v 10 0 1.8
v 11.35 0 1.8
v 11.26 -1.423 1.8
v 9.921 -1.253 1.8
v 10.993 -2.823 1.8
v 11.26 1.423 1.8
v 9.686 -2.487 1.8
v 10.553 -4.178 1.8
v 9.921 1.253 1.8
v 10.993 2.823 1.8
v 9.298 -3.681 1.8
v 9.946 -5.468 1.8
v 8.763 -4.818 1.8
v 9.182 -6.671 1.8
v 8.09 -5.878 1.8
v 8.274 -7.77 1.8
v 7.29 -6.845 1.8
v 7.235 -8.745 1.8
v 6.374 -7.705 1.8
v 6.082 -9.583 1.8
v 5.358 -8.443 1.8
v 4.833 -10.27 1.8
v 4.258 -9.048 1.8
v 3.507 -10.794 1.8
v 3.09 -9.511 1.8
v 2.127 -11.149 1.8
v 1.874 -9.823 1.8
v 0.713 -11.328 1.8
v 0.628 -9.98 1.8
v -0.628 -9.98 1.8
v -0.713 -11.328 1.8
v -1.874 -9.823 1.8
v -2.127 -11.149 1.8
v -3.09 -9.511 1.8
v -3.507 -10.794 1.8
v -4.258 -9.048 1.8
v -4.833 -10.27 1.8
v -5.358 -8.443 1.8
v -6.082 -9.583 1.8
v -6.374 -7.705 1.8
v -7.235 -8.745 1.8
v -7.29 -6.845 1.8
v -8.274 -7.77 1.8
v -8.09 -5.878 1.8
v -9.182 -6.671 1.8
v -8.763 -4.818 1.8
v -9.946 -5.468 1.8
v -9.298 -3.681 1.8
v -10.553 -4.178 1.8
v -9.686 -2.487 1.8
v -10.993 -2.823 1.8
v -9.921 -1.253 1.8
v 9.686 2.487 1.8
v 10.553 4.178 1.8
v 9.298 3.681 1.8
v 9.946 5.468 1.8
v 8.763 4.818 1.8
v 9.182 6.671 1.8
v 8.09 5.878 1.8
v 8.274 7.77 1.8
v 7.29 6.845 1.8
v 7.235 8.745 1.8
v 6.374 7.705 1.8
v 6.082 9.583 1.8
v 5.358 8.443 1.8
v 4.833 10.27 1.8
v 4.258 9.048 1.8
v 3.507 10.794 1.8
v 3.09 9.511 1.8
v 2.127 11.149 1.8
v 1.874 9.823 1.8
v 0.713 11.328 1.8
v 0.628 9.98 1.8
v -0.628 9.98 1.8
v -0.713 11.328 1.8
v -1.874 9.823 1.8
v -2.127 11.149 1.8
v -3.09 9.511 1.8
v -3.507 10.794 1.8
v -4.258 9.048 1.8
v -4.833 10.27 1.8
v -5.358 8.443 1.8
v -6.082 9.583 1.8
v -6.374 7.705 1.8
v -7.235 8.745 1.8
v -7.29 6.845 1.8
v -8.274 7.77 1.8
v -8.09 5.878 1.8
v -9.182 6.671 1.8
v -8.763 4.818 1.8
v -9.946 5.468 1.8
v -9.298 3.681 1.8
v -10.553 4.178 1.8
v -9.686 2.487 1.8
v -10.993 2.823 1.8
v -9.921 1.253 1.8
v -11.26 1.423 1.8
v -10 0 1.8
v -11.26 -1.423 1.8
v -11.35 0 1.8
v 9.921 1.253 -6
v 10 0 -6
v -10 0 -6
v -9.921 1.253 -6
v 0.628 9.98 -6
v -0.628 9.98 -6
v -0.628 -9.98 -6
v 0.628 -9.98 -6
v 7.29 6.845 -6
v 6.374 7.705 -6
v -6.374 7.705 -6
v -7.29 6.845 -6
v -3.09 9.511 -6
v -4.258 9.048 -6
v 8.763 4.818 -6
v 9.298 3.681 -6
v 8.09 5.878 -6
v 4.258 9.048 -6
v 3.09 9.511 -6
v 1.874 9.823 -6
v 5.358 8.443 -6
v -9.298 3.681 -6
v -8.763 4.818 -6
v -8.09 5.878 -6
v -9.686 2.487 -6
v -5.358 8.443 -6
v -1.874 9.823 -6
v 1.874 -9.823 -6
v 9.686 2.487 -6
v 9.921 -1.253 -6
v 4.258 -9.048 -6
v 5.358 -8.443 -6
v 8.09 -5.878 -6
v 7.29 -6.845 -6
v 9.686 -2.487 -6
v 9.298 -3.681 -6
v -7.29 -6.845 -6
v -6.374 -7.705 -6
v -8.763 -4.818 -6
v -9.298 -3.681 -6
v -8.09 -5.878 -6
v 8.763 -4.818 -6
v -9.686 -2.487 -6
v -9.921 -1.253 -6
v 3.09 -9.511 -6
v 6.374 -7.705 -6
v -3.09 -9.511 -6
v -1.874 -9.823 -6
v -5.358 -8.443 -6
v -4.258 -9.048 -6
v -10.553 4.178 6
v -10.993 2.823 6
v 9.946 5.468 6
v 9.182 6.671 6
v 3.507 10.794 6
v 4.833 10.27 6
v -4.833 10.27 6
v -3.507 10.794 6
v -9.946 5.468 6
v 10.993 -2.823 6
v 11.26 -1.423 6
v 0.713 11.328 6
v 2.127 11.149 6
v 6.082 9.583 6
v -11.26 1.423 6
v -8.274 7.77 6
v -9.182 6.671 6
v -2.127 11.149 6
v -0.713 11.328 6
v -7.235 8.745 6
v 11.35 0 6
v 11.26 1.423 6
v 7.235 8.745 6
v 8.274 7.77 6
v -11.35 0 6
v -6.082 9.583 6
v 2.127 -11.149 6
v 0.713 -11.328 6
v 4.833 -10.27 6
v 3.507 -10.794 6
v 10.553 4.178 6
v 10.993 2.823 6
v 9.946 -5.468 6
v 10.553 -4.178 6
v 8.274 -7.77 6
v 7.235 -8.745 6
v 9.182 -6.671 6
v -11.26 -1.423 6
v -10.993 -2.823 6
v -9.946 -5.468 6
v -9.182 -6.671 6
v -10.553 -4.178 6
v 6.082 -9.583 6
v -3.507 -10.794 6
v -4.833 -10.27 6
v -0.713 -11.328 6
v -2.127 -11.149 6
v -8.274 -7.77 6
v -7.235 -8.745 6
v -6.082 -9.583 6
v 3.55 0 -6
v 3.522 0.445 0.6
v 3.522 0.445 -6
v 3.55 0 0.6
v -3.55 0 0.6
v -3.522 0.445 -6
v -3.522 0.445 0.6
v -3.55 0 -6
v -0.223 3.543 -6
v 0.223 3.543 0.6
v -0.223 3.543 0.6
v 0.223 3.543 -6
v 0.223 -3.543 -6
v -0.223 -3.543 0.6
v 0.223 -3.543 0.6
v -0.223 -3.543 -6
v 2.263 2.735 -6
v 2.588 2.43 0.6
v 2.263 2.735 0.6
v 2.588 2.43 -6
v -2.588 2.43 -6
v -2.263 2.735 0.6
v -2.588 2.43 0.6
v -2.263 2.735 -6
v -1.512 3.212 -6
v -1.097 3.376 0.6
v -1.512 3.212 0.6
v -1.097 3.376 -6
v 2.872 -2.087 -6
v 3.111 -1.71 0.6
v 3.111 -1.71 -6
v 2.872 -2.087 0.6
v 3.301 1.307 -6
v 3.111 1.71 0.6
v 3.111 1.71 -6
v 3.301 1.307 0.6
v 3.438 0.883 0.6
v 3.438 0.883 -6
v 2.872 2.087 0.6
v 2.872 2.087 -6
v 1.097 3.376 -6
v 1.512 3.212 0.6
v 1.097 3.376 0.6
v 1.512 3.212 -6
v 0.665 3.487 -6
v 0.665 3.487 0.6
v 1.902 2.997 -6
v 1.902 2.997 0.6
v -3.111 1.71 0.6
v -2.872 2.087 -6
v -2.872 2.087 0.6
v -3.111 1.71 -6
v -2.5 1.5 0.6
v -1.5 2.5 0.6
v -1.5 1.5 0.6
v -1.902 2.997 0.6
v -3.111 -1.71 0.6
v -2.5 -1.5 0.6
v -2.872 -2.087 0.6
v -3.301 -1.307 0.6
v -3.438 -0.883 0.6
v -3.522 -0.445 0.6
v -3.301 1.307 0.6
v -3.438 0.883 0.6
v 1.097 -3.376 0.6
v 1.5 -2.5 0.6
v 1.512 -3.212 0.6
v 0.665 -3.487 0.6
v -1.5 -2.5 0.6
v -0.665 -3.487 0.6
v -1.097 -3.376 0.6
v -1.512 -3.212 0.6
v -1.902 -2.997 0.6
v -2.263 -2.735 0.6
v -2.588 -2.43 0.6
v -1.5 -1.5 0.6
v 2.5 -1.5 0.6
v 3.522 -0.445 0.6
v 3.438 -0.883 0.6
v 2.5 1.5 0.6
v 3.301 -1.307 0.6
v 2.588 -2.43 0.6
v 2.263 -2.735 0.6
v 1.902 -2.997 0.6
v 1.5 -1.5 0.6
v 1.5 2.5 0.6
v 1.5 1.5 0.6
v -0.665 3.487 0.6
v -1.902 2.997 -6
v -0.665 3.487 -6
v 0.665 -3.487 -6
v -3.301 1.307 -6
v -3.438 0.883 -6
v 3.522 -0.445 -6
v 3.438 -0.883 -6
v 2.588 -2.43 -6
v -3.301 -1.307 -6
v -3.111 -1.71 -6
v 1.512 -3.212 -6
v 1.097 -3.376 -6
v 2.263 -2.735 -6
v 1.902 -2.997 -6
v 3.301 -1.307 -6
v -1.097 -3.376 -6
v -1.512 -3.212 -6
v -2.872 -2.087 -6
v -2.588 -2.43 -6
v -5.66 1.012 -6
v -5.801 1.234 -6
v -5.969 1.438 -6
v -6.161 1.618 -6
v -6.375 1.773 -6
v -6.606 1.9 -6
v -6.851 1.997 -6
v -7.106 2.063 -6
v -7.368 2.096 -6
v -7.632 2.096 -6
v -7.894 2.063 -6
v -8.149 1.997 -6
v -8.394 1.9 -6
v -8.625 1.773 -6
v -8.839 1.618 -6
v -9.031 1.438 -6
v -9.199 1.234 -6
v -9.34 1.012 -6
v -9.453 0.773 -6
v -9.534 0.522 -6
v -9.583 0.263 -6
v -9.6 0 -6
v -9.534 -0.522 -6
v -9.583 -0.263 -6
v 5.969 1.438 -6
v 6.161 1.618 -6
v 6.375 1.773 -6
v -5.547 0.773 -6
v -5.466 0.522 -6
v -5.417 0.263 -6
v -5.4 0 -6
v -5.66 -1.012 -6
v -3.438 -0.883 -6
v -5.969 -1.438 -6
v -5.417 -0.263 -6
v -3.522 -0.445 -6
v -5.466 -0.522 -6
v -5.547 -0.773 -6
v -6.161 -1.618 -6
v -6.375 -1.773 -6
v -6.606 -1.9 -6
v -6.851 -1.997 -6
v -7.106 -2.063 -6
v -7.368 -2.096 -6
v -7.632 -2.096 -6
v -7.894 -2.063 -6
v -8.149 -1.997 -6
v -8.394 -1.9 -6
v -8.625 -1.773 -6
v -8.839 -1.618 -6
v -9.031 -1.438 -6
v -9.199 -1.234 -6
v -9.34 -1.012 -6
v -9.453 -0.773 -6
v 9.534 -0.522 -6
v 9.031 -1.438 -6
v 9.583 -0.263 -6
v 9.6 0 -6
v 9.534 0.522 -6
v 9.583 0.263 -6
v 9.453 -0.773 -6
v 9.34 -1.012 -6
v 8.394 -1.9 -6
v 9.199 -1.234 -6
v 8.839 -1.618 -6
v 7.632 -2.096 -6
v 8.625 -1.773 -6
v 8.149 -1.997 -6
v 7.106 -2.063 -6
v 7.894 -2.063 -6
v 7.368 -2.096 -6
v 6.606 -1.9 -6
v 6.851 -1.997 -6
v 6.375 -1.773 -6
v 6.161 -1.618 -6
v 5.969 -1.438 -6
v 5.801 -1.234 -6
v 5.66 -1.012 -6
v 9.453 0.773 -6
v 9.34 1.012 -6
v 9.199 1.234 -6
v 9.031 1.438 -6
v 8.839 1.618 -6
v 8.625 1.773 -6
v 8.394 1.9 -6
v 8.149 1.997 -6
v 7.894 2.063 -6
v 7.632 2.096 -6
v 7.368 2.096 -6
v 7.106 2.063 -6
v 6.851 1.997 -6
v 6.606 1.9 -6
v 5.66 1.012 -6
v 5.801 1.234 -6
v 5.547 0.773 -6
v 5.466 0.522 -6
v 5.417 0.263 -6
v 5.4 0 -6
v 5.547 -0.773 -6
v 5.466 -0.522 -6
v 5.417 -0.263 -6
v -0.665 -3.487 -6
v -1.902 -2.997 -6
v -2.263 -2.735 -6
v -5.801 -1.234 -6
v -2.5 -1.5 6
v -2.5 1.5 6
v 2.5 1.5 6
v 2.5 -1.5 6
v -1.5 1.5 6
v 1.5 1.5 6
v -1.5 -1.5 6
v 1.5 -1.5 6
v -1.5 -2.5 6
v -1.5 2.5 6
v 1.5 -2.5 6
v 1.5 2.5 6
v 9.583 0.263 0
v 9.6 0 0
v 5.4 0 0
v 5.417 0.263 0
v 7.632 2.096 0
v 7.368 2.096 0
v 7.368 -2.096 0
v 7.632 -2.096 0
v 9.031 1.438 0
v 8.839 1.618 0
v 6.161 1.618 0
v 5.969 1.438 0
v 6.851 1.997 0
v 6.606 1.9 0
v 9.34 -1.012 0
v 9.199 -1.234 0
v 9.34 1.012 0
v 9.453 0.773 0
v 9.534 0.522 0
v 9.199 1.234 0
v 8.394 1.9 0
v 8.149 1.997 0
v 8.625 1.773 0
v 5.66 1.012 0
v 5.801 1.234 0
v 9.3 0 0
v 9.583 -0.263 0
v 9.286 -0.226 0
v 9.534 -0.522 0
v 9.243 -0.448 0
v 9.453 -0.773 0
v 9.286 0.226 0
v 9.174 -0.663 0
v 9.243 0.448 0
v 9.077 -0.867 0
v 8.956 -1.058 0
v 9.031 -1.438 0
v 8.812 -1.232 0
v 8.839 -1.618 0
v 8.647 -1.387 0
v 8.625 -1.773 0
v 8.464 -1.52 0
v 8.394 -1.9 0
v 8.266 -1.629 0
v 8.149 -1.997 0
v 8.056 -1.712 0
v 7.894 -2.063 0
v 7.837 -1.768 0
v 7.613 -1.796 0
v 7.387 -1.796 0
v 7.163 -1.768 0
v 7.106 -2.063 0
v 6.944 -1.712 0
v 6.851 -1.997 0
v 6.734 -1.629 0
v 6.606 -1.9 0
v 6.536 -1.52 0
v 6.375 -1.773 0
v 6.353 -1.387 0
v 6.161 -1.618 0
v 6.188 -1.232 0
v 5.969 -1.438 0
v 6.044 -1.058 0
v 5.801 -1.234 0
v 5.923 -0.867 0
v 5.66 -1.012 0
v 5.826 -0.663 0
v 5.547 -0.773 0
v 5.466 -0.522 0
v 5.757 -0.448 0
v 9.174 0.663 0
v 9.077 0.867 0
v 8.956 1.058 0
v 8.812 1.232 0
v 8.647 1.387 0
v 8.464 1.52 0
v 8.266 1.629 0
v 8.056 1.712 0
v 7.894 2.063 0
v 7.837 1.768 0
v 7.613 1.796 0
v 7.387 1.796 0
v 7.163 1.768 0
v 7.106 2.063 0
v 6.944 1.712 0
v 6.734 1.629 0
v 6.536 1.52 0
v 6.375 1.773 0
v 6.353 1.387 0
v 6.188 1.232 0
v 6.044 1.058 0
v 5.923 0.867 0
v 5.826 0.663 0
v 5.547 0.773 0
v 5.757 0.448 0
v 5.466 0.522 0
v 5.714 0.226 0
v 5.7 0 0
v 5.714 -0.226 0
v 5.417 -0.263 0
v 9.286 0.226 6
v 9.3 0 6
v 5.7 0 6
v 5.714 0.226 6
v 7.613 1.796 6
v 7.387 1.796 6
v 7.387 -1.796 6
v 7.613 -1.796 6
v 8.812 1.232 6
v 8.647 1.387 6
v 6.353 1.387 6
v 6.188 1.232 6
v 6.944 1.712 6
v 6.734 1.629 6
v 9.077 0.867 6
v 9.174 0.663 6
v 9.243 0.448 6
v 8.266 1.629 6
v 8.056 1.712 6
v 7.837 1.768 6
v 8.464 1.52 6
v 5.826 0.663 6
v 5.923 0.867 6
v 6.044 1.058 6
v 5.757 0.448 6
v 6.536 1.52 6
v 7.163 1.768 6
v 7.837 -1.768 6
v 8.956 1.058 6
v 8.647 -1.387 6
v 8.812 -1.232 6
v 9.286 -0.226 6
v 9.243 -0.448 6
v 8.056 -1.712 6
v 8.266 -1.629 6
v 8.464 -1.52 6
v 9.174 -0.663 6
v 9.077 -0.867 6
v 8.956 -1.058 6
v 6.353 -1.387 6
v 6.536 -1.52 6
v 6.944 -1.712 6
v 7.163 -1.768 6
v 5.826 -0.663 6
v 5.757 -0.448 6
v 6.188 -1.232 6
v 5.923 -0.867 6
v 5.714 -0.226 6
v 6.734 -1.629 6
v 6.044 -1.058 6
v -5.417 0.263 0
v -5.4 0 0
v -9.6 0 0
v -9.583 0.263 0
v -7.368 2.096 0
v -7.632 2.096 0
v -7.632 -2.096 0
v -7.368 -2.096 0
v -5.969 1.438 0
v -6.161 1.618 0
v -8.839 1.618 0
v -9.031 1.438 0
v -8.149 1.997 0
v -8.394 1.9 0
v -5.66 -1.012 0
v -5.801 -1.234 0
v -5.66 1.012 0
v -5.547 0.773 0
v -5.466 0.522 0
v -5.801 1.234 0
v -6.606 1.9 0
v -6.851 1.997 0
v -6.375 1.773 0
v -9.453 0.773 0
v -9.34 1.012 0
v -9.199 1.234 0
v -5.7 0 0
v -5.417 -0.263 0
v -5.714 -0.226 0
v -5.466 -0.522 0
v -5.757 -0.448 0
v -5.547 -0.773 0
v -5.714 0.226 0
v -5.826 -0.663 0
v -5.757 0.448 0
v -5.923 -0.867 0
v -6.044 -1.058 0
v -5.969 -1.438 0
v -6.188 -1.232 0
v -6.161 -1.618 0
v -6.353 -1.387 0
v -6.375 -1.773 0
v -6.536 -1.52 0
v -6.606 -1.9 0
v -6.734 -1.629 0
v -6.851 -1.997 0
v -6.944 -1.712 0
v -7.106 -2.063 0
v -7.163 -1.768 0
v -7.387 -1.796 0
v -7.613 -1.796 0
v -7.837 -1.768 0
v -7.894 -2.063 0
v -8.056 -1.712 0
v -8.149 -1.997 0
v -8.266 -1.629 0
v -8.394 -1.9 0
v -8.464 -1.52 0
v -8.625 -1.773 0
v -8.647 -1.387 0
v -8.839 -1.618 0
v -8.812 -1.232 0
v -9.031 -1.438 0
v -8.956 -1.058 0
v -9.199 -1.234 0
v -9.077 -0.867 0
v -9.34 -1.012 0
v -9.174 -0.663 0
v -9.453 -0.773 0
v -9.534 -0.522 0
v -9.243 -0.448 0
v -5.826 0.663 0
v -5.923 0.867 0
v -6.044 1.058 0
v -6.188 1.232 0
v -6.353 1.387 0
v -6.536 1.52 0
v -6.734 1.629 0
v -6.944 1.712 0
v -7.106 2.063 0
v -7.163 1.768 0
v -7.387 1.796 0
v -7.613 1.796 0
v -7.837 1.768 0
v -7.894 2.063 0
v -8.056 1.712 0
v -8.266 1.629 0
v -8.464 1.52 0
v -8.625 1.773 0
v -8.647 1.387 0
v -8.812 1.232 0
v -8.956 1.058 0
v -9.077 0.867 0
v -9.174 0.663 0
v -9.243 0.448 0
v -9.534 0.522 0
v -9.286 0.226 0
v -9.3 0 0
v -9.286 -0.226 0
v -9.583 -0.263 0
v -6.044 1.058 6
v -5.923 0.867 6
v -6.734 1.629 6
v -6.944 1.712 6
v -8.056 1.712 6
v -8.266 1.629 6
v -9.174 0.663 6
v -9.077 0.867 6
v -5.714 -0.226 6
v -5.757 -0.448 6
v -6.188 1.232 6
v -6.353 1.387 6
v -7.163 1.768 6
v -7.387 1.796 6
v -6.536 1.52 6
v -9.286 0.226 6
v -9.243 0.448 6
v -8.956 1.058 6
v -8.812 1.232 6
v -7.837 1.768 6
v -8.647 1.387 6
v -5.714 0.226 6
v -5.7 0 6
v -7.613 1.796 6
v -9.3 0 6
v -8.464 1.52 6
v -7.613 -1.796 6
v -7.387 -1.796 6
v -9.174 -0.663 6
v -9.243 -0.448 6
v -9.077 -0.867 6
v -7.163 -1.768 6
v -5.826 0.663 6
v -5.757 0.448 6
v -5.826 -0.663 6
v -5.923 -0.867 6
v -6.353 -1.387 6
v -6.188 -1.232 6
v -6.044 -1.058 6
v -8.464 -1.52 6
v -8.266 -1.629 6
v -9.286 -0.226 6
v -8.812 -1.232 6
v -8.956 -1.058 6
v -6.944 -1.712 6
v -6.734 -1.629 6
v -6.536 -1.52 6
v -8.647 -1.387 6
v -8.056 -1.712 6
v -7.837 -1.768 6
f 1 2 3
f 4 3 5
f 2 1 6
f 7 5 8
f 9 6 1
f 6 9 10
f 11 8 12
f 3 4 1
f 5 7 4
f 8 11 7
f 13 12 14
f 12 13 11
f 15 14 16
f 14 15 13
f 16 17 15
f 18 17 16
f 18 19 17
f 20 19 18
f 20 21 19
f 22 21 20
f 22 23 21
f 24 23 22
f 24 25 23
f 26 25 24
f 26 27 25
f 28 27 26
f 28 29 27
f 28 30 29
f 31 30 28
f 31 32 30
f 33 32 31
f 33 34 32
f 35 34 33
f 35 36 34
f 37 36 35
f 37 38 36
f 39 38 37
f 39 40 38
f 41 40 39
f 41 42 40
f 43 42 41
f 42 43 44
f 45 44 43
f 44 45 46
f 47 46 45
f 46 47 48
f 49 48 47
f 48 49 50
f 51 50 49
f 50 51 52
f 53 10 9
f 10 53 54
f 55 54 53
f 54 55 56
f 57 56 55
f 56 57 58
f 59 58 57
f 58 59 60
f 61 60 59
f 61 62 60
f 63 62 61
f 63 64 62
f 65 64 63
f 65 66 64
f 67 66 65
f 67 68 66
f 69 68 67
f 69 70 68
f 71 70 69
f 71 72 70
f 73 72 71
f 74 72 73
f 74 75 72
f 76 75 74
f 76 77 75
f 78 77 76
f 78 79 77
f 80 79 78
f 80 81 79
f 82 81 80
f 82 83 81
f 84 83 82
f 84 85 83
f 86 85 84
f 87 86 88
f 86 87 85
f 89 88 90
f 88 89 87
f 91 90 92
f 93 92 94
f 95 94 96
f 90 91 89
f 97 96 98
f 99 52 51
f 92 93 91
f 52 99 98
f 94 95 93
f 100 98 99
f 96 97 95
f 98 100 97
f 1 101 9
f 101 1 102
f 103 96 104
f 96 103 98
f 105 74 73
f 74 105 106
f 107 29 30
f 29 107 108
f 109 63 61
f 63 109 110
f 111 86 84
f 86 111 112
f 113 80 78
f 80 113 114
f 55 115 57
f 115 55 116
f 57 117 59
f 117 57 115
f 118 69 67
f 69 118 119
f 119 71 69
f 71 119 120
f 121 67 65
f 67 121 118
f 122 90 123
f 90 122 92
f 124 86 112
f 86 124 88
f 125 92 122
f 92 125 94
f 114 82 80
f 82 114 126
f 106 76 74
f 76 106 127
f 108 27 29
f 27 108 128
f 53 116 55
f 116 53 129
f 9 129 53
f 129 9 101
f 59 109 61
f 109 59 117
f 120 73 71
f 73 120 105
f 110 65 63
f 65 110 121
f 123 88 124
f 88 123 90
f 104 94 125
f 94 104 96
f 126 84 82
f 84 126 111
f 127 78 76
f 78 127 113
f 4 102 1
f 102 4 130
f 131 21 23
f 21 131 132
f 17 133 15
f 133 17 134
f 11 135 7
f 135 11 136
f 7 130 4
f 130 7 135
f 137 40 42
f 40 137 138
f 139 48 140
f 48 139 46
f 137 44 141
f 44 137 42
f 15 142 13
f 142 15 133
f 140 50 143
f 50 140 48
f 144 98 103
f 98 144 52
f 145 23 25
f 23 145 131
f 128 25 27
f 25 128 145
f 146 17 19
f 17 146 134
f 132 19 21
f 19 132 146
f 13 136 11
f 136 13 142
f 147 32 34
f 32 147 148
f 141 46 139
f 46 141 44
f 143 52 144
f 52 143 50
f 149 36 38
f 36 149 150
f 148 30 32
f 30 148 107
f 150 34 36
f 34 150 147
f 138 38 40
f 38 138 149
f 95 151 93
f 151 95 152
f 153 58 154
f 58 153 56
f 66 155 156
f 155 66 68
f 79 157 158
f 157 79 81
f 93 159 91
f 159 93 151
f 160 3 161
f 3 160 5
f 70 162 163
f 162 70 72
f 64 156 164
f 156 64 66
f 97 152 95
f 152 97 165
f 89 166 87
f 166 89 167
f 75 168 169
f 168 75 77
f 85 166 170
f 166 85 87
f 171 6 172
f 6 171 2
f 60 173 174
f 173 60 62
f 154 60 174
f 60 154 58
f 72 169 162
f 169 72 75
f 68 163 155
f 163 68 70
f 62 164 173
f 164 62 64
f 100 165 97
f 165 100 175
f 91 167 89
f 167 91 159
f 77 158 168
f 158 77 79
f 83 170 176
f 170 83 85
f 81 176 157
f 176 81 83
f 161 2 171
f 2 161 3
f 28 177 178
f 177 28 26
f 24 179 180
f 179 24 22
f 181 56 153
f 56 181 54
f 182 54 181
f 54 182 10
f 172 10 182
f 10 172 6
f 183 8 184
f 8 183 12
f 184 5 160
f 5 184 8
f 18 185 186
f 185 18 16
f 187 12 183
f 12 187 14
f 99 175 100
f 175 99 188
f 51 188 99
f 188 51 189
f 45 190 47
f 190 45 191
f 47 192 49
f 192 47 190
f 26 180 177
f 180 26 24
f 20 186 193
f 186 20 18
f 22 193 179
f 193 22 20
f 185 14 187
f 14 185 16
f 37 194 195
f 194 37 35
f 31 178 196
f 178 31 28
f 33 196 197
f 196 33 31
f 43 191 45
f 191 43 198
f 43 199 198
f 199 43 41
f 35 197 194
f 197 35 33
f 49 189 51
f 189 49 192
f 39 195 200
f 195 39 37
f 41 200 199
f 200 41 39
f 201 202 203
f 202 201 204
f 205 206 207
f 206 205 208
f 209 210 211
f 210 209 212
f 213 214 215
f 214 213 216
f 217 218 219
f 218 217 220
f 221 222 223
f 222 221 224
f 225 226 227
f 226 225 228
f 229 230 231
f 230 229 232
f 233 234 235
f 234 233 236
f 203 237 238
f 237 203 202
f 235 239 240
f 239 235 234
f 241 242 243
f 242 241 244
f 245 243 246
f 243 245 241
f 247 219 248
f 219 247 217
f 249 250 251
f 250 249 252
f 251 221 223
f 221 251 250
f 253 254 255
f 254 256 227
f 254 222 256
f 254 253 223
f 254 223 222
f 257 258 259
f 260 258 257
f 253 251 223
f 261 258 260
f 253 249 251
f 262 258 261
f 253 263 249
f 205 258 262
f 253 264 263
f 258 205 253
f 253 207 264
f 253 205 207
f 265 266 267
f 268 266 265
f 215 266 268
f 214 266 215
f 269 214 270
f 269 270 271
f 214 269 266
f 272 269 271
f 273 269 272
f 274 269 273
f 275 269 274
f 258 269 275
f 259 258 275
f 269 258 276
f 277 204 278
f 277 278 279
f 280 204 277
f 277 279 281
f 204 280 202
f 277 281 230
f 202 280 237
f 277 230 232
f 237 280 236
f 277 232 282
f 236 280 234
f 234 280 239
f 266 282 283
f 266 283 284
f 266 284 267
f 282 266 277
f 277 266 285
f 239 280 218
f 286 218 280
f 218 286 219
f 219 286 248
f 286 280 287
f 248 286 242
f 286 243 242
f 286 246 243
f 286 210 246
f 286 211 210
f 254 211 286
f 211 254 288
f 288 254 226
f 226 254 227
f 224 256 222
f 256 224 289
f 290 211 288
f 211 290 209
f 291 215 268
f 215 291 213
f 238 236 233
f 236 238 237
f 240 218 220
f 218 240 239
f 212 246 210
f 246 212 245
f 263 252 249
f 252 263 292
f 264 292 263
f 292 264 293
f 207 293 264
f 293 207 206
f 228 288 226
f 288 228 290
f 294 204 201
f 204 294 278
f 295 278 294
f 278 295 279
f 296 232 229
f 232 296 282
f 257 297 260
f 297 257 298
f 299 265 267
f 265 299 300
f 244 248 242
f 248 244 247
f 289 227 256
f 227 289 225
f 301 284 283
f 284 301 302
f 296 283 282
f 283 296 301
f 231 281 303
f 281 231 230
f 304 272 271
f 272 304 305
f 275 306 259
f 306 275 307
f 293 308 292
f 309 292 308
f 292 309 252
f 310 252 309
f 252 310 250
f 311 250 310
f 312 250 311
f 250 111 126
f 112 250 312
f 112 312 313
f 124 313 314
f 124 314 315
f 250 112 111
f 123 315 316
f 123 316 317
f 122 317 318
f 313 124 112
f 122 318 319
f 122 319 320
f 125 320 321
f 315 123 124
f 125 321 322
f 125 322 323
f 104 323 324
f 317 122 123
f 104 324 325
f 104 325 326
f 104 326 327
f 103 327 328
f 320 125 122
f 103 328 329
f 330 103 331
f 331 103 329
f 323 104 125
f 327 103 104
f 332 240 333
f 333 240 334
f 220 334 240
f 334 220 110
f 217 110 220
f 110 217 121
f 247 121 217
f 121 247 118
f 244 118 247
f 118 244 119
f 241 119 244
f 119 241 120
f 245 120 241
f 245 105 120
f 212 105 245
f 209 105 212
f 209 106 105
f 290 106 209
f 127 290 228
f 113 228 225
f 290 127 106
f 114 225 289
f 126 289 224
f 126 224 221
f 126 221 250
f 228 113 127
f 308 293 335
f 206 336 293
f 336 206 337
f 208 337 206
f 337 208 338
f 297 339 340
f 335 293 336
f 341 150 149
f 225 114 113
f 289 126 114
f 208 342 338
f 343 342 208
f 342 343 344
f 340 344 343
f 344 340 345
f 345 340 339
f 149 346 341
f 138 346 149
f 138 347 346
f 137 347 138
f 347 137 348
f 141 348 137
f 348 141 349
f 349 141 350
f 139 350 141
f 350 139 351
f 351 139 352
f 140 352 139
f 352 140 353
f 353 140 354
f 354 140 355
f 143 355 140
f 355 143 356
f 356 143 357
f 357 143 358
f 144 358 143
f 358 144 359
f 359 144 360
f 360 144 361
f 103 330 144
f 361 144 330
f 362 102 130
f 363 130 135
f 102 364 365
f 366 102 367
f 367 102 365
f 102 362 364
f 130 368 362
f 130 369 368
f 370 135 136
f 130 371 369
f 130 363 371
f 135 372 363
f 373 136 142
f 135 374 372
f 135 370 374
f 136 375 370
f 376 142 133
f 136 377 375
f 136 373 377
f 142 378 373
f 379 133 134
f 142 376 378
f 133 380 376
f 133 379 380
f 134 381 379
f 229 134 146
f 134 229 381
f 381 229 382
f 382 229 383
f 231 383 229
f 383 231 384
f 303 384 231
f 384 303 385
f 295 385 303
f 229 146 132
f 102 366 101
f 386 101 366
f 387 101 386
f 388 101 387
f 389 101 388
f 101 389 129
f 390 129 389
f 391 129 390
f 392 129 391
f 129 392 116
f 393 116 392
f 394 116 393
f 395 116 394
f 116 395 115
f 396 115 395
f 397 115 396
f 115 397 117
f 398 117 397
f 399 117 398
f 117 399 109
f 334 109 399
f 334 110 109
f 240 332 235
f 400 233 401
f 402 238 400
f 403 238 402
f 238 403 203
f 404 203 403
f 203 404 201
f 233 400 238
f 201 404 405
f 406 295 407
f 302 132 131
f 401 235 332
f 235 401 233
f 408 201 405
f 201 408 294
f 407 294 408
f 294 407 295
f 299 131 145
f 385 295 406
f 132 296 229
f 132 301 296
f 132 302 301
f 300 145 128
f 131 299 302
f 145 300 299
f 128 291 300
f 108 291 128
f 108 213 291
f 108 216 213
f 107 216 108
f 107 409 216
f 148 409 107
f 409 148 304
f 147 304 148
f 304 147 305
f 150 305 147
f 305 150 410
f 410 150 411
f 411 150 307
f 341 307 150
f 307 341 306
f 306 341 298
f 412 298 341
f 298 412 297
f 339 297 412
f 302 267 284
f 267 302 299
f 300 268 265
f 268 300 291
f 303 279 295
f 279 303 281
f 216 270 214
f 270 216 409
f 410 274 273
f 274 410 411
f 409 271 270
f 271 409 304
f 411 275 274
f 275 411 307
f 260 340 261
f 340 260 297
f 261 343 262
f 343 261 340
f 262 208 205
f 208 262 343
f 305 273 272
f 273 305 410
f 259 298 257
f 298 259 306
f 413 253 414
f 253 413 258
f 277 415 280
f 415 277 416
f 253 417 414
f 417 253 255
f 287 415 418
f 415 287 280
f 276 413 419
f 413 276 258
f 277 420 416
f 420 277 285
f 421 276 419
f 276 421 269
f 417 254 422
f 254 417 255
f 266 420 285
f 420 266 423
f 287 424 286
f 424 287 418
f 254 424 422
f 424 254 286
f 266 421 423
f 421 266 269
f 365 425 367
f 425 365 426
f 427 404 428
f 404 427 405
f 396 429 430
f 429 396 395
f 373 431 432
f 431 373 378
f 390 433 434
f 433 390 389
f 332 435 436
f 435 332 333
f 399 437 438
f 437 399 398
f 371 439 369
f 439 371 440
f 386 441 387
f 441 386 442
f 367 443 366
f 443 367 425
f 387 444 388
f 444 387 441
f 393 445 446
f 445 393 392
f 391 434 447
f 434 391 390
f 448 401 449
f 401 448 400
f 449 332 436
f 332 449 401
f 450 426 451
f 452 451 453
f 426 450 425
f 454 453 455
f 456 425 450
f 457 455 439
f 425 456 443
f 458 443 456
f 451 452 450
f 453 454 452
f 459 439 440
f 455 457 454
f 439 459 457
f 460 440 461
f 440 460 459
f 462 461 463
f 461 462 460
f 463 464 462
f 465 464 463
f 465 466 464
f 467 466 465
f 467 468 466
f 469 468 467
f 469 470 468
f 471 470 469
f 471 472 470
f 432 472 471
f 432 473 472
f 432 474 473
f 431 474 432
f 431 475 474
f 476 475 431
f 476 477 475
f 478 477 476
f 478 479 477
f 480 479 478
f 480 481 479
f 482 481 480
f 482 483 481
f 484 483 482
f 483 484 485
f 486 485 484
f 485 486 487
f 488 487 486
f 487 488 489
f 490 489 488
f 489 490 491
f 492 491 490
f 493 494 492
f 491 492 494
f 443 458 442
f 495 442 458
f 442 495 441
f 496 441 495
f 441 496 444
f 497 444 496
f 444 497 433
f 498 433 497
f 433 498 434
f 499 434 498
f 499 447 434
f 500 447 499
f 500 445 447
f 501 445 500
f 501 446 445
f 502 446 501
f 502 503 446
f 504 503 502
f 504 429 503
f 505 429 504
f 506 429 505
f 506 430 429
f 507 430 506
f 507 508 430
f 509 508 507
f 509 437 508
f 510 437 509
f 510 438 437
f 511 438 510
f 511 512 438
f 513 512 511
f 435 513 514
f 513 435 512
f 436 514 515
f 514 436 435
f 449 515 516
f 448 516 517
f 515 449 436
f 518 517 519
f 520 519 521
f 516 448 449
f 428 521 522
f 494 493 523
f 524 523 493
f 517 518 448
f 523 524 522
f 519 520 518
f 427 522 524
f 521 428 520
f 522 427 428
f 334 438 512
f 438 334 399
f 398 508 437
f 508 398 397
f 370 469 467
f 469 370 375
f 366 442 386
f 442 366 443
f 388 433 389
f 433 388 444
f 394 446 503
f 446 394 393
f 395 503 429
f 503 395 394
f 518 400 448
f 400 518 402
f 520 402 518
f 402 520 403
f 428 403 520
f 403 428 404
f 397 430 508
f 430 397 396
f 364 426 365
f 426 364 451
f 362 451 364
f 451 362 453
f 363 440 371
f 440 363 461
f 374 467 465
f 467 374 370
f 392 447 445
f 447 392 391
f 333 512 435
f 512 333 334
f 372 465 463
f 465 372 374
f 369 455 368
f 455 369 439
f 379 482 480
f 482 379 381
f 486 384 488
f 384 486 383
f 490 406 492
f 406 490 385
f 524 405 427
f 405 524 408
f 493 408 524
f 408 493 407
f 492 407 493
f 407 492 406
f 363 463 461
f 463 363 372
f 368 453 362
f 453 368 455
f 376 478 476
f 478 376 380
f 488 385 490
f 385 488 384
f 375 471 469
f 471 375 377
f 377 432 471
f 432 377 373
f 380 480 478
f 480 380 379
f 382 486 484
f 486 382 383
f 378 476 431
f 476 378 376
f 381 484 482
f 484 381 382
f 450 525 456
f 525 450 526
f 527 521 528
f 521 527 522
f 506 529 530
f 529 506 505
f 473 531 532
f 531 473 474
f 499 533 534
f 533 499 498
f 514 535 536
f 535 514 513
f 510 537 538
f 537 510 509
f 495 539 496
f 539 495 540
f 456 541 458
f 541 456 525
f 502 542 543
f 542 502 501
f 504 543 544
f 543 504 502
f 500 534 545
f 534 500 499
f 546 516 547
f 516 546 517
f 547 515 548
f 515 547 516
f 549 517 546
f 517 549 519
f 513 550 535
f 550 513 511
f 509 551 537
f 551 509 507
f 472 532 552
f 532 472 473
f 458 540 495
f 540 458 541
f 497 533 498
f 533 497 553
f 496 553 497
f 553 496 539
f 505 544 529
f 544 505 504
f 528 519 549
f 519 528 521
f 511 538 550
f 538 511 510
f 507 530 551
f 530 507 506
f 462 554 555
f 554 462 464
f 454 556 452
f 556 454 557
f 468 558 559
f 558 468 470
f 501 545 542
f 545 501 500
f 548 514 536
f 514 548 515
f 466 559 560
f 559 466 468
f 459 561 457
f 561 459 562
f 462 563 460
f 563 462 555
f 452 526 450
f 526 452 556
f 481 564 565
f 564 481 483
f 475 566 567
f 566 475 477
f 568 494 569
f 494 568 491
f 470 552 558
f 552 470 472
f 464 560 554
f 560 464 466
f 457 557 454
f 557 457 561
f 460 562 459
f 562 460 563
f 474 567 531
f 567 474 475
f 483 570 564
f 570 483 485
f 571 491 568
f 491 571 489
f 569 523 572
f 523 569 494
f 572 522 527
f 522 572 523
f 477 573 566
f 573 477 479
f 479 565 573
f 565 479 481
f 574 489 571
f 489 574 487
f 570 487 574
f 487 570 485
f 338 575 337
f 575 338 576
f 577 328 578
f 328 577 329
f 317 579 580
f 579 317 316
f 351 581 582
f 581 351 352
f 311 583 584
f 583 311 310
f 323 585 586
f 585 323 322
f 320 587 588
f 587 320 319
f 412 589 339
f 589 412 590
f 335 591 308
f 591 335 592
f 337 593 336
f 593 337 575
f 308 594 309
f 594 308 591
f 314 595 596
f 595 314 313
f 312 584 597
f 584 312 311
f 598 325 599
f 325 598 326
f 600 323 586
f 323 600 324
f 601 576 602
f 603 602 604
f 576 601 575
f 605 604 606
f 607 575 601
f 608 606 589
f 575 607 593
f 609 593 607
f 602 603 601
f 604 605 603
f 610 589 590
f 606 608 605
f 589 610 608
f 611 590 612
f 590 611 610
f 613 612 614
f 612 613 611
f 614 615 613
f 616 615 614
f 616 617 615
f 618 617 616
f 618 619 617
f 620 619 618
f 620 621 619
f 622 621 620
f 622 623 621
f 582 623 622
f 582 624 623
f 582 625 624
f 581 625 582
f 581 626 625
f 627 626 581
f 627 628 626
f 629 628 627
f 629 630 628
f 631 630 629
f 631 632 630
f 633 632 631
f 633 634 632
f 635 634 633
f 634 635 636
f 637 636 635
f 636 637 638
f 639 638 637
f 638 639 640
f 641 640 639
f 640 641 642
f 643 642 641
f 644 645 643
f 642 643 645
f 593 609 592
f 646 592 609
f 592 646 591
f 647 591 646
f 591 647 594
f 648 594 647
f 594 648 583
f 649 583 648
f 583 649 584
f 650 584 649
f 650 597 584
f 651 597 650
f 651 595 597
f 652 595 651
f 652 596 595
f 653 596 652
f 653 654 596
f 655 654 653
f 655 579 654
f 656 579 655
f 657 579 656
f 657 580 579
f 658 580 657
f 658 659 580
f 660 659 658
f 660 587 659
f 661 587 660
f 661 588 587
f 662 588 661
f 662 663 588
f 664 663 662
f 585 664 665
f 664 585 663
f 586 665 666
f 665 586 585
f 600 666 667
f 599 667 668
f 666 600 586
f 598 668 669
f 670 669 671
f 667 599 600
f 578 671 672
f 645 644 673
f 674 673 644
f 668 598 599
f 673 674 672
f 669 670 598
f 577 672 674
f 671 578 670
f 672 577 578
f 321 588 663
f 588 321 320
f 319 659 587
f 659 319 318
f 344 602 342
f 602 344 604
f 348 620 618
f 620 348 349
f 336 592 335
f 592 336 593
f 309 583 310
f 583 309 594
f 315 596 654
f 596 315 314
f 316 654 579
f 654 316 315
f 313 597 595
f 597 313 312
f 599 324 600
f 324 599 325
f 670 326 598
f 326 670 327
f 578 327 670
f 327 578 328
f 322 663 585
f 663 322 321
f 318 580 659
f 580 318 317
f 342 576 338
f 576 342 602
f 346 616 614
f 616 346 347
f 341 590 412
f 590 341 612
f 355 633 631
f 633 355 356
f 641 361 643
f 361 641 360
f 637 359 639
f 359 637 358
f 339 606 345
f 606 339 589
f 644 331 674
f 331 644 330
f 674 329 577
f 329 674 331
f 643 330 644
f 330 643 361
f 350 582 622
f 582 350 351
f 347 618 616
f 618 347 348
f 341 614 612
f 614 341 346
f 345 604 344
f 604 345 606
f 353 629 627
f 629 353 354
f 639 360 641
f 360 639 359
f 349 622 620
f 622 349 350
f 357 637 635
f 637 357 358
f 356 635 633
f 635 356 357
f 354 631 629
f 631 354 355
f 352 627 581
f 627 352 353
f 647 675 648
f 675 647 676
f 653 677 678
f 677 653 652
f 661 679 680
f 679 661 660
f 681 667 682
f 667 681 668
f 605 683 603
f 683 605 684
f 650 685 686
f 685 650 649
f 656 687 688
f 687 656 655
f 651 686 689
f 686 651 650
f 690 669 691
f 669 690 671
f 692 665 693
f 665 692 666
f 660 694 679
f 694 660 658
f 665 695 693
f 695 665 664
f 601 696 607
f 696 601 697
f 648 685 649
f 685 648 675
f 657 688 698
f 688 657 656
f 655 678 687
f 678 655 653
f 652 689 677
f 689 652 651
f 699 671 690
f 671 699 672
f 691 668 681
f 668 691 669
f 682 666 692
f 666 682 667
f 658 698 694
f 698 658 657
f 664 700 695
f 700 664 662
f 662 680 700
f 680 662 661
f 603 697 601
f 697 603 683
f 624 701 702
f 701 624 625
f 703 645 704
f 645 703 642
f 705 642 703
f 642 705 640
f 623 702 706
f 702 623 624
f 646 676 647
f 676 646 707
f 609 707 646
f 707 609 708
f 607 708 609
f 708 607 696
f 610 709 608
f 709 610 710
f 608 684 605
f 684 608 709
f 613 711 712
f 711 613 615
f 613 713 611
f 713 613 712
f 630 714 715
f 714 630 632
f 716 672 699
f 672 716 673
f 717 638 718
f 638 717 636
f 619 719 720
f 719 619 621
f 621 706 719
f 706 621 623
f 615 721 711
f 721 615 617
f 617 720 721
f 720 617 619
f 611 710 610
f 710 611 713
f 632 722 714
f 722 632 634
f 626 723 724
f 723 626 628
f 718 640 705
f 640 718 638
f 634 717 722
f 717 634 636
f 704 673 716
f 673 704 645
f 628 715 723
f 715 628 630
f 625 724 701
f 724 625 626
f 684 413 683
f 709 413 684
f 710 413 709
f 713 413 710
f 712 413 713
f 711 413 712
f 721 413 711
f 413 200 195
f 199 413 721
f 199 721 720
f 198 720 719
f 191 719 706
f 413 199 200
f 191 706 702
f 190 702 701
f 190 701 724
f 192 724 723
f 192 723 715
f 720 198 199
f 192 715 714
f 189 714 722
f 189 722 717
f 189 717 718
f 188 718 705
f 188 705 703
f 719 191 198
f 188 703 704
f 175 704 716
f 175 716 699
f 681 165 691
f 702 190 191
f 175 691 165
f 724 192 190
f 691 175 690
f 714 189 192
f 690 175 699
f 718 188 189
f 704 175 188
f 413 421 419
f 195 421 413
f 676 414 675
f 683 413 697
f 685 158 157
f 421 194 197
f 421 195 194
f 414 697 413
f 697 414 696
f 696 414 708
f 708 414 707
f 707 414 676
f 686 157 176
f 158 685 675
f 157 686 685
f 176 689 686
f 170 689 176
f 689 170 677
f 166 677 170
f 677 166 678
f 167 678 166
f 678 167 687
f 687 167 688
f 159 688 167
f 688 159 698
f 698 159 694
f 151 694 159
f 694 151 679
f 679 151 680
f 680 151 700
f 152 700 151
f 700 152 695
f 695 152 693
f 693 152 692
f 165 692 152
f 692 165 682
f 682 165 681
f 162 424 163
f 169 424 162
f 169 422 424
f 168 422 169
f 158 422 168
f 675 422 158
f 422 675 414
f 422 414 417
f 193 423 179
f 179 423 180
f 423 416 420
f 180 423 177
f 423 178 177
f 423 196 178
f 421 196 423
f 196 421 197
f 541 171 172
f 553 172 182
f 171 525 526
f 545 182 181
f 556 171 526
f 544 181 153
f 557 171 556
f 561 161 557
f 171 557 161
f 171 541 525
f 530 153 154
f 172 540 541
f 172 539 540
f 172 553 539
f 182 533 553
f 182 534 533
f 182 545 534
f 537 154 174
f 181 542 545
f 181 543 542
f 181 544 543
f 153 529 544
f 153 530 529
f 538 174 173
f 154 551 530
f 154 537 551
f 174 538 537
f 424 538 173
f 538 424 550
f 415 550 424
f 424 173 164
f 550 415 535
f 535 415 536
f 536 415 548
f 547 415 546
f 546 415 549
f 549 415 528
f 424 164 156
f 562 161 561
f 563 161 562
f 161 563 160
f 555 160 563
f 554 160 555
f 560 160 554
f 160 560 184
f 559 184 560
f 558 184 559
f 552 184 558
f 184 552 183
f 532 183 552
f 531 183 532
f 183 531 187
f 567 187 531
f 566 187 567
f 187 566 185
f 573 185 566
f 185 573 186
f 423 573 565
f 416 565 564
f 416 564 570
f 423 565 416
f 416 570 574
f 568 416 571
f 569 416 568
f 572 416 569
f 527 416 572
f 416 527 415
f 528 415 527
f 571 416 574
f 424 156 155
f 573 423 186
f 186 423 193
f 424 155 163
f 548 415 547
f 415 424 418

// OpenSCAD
$fn = 50;


difference() {
	union() {
		translate(v = [0, 0, -6.0000000000]) {
			rotate(a = [0, 0, 0]) {
				cylinder(h = 12, r = 12.0000000000);
			}
		}
	}
	union() {
		translate(v = [0, 0, 0]) {
			rotate(a = [0, 0, 0]) {
				translate(v = [0, 0, -1.8000000000]) {
					union() {
						difference() {
							translate(v = [0, 0, 0]) {
								rotate(a = [0, 0, 0]) {
									cylinder(h = 3.6000000000, r = 13.7000000000);
								}
							}
							translate(v = [0, 0, 0]) {
								rotate(a = [0, 0, 0]) {
									cylinder(h = 3.6000000000, r = 10.0000000000);
								}
							}
						}
						difference() {
							translate(v = [0, 0, -50]) {
								rotate(a = [0, 0, 0]) {
									cylinder(h = 100, r = 12.3500000000);
								}
							}
							translate(v = [0, 0, -50]) {
								rotate(a = [0, 0, 0]) {
									cylinder(h = 100, r = 11.3500000000);
								}
							}
						}
					}
				}
			}
		}
		translate(v = [-15.0000000000, -15.0000000000, -125.0000000000]) {
			rotate(a = [0, 0, 0]) {
				cylinder(h = 250, r = 3.2500000000);
			}
		}
		translate(v = [-15.0000000000, 15.0000000000, -125.0000000000]) {
			rotate(a = [0, 0, 0]) {
				cylinder(h = 250, r = 3.2500000000);
			}
		}
		translate(v = [15.0000000000, -15.0000000000, -125.0000000000]) {
			rotate(a = [0, 0, 0]) {
				cylinder(h = 250, r = 3.2500000000);
			}
		}
		translate(v = [15.0000000000, 15.0000000000, -125.0000000000]) {
			rotate(a = [0, 0, 0]) {
				cylinder(h = 250, r = 3.2500000000);
			}
		}
		translate(v = [0, 0, -6.0000000000]) {
			rotate(a = [0, 0, 0]) {
				cylinder(h = 6.6000000000, r1 = 3.5500000000, r2 = 3.5500000000);
			}
		}
		#translate(v = [-2.5000000000, -1.5000000000, -6]) {
			rotate(a = [0, 0, 0]) {
				cube(size = [5, 3, 30]);
			}
		}
		#translate(v = [-1.5000000000, -2.5000000000, -6]) {
			rotate(a = [0, 0, 0]) {
				cube(size = [3, 5, 30]);
			}
		}
		translate(v = [7.5000000000, 0, -6.0000000000]) {
			rotate(a = [0, 0, 0]) {
				cylinder(h = 6, r = 2.1000000000);
			}
		}
		translate(v = [7.5000000000, 0, -125.0000000000]) {
			rotate(a = [0, 0, 0]) {
				cylinder(h = 250, r = 1.8000000000);
			}
		}
		translate(v = [7.5000000000, 0, -6.0000000000]) {
			rotate(a = [0, 0, 0]) {
				cylinder(h = 6, r = 2.1000000000);
			}
		}
		translate(v = [7.5000000000, 0, -125.0000000000]) {
			rotate(a = [0, 0, 0]) {
				cylinder(h = 250, r = 1.8000000000);
			}
		}
		translate(v = [7.5000000000, 0, -6.0000000000]) {
			rotate(a = [0, 0, 0]) {
				cylinder(h = 6, r = 2.1000000000);
			}
		}
		translate(v = [7.5000000000, 0, -125.0000000000]) {
			rotate(a = [0, 0, 0]) {
				cylinder(h = 250, r = 1.8000000000);
			}
		}
		translate(v = [-7.5000000000, 0, -6.0000000000]) {
			rotate(a = [0, 0, 0]) {
				cylinder(h = 6, r = 2.1000000000);
			}
		}
		translate(v = [-7.5000000000, 0, -125.0000000000]) {
			rotate(a = [0, 0, 0]) {
				cylinder(h = 250, r = 1.8000000000);
			}
		}
		translate(v = [-7.5000000000, 0, -6.0000000000]) {
			rotate(a = [0, 0, 0]) {
				cylinder(h = 6, r = 2.1000000000);
			}
		}
		translate(v = [-7.5000000000, 0, -125.0000000000]) {
			rotate(a = [0, 0, 0]) {
				cylinder(h = 250, r = 1.8000000000);
			}
		}
		translate(v = [-7.5000000000, 0, -6.0000000000]) {
			rotate(a = [0, 0, 0]) {
				cylinder(h = 6, r = 2.1000000000);
			}
		}
		translate(v = [-7.5000000000, 0, -125.0000000000]) {
			rotate(a = [0, 0, 0]) {
				cylinder(h = 250, r = 1.8000000000);
			}
		}
		translate(v = [0, 0, -3]) {
			rotate(a = [0, 0, 0]) {
				translate(v = [0, 0, -1.8000000000]) {
					union() {
						difference() {
							translate(v = [0, 0, 0]) {
								rotate(a = [0, 0, 0]) {
									cylinder(h = 3.6000000000, r = 13.7000000000);
								}
							}
							translate(v = [0, 0, 0]) {
								rotate(a = [0, 0, 0]) {
									cylinder(h = 3.6000000000, r = 10.0000000000);
								}
							}
						}
						difference() {
							translate(v = [0, 0, -50]) {
								rotate(a = [0, 0, 0]) {
									cylinder(h = 100, r = 12.3500000000);
								}
							}
							translate(v = [0, 0, -50]) {
								rotate(a = [0, 0, 0]) {
									cylinder(h = 100, r = 11.3500000000);
								}
							}
						}
					}
				}
			}
		}
		translate(v = [0, 0, -6]) {
			rotate(a = [0, 0, 0]) {
				translate(v = [0, 0, -1.8000000000]) {
					union() {
						difference() {
							translate(v = [0, 0, 0]) {
								rotate(a = [0, 0, 0]) {
									cylinder(h = 3.6000000000, r = 13.7000000000);
								}
							}
							translate(v = [0, 0, 0]) {
								rotate(a = [0, 0, 0]) {
									cylinder(h = 3.6000000000, r = 10.0000000000);
								}
							}
						}
						difference() {
							translate(v = [0, 0, -50]) {
								rotate(a = [0, 0, 0]) {
									cylinder(h = 100, r = 12.3500000000);
								}
							}
							translate(v = [0, 0, -50]) {
								rotate(a = [0, 0, 0]) {
									cylinder(h = 100, r = 11.3500000000);
								}
							}
						}
					}
				}
			}
		}
	}
}
